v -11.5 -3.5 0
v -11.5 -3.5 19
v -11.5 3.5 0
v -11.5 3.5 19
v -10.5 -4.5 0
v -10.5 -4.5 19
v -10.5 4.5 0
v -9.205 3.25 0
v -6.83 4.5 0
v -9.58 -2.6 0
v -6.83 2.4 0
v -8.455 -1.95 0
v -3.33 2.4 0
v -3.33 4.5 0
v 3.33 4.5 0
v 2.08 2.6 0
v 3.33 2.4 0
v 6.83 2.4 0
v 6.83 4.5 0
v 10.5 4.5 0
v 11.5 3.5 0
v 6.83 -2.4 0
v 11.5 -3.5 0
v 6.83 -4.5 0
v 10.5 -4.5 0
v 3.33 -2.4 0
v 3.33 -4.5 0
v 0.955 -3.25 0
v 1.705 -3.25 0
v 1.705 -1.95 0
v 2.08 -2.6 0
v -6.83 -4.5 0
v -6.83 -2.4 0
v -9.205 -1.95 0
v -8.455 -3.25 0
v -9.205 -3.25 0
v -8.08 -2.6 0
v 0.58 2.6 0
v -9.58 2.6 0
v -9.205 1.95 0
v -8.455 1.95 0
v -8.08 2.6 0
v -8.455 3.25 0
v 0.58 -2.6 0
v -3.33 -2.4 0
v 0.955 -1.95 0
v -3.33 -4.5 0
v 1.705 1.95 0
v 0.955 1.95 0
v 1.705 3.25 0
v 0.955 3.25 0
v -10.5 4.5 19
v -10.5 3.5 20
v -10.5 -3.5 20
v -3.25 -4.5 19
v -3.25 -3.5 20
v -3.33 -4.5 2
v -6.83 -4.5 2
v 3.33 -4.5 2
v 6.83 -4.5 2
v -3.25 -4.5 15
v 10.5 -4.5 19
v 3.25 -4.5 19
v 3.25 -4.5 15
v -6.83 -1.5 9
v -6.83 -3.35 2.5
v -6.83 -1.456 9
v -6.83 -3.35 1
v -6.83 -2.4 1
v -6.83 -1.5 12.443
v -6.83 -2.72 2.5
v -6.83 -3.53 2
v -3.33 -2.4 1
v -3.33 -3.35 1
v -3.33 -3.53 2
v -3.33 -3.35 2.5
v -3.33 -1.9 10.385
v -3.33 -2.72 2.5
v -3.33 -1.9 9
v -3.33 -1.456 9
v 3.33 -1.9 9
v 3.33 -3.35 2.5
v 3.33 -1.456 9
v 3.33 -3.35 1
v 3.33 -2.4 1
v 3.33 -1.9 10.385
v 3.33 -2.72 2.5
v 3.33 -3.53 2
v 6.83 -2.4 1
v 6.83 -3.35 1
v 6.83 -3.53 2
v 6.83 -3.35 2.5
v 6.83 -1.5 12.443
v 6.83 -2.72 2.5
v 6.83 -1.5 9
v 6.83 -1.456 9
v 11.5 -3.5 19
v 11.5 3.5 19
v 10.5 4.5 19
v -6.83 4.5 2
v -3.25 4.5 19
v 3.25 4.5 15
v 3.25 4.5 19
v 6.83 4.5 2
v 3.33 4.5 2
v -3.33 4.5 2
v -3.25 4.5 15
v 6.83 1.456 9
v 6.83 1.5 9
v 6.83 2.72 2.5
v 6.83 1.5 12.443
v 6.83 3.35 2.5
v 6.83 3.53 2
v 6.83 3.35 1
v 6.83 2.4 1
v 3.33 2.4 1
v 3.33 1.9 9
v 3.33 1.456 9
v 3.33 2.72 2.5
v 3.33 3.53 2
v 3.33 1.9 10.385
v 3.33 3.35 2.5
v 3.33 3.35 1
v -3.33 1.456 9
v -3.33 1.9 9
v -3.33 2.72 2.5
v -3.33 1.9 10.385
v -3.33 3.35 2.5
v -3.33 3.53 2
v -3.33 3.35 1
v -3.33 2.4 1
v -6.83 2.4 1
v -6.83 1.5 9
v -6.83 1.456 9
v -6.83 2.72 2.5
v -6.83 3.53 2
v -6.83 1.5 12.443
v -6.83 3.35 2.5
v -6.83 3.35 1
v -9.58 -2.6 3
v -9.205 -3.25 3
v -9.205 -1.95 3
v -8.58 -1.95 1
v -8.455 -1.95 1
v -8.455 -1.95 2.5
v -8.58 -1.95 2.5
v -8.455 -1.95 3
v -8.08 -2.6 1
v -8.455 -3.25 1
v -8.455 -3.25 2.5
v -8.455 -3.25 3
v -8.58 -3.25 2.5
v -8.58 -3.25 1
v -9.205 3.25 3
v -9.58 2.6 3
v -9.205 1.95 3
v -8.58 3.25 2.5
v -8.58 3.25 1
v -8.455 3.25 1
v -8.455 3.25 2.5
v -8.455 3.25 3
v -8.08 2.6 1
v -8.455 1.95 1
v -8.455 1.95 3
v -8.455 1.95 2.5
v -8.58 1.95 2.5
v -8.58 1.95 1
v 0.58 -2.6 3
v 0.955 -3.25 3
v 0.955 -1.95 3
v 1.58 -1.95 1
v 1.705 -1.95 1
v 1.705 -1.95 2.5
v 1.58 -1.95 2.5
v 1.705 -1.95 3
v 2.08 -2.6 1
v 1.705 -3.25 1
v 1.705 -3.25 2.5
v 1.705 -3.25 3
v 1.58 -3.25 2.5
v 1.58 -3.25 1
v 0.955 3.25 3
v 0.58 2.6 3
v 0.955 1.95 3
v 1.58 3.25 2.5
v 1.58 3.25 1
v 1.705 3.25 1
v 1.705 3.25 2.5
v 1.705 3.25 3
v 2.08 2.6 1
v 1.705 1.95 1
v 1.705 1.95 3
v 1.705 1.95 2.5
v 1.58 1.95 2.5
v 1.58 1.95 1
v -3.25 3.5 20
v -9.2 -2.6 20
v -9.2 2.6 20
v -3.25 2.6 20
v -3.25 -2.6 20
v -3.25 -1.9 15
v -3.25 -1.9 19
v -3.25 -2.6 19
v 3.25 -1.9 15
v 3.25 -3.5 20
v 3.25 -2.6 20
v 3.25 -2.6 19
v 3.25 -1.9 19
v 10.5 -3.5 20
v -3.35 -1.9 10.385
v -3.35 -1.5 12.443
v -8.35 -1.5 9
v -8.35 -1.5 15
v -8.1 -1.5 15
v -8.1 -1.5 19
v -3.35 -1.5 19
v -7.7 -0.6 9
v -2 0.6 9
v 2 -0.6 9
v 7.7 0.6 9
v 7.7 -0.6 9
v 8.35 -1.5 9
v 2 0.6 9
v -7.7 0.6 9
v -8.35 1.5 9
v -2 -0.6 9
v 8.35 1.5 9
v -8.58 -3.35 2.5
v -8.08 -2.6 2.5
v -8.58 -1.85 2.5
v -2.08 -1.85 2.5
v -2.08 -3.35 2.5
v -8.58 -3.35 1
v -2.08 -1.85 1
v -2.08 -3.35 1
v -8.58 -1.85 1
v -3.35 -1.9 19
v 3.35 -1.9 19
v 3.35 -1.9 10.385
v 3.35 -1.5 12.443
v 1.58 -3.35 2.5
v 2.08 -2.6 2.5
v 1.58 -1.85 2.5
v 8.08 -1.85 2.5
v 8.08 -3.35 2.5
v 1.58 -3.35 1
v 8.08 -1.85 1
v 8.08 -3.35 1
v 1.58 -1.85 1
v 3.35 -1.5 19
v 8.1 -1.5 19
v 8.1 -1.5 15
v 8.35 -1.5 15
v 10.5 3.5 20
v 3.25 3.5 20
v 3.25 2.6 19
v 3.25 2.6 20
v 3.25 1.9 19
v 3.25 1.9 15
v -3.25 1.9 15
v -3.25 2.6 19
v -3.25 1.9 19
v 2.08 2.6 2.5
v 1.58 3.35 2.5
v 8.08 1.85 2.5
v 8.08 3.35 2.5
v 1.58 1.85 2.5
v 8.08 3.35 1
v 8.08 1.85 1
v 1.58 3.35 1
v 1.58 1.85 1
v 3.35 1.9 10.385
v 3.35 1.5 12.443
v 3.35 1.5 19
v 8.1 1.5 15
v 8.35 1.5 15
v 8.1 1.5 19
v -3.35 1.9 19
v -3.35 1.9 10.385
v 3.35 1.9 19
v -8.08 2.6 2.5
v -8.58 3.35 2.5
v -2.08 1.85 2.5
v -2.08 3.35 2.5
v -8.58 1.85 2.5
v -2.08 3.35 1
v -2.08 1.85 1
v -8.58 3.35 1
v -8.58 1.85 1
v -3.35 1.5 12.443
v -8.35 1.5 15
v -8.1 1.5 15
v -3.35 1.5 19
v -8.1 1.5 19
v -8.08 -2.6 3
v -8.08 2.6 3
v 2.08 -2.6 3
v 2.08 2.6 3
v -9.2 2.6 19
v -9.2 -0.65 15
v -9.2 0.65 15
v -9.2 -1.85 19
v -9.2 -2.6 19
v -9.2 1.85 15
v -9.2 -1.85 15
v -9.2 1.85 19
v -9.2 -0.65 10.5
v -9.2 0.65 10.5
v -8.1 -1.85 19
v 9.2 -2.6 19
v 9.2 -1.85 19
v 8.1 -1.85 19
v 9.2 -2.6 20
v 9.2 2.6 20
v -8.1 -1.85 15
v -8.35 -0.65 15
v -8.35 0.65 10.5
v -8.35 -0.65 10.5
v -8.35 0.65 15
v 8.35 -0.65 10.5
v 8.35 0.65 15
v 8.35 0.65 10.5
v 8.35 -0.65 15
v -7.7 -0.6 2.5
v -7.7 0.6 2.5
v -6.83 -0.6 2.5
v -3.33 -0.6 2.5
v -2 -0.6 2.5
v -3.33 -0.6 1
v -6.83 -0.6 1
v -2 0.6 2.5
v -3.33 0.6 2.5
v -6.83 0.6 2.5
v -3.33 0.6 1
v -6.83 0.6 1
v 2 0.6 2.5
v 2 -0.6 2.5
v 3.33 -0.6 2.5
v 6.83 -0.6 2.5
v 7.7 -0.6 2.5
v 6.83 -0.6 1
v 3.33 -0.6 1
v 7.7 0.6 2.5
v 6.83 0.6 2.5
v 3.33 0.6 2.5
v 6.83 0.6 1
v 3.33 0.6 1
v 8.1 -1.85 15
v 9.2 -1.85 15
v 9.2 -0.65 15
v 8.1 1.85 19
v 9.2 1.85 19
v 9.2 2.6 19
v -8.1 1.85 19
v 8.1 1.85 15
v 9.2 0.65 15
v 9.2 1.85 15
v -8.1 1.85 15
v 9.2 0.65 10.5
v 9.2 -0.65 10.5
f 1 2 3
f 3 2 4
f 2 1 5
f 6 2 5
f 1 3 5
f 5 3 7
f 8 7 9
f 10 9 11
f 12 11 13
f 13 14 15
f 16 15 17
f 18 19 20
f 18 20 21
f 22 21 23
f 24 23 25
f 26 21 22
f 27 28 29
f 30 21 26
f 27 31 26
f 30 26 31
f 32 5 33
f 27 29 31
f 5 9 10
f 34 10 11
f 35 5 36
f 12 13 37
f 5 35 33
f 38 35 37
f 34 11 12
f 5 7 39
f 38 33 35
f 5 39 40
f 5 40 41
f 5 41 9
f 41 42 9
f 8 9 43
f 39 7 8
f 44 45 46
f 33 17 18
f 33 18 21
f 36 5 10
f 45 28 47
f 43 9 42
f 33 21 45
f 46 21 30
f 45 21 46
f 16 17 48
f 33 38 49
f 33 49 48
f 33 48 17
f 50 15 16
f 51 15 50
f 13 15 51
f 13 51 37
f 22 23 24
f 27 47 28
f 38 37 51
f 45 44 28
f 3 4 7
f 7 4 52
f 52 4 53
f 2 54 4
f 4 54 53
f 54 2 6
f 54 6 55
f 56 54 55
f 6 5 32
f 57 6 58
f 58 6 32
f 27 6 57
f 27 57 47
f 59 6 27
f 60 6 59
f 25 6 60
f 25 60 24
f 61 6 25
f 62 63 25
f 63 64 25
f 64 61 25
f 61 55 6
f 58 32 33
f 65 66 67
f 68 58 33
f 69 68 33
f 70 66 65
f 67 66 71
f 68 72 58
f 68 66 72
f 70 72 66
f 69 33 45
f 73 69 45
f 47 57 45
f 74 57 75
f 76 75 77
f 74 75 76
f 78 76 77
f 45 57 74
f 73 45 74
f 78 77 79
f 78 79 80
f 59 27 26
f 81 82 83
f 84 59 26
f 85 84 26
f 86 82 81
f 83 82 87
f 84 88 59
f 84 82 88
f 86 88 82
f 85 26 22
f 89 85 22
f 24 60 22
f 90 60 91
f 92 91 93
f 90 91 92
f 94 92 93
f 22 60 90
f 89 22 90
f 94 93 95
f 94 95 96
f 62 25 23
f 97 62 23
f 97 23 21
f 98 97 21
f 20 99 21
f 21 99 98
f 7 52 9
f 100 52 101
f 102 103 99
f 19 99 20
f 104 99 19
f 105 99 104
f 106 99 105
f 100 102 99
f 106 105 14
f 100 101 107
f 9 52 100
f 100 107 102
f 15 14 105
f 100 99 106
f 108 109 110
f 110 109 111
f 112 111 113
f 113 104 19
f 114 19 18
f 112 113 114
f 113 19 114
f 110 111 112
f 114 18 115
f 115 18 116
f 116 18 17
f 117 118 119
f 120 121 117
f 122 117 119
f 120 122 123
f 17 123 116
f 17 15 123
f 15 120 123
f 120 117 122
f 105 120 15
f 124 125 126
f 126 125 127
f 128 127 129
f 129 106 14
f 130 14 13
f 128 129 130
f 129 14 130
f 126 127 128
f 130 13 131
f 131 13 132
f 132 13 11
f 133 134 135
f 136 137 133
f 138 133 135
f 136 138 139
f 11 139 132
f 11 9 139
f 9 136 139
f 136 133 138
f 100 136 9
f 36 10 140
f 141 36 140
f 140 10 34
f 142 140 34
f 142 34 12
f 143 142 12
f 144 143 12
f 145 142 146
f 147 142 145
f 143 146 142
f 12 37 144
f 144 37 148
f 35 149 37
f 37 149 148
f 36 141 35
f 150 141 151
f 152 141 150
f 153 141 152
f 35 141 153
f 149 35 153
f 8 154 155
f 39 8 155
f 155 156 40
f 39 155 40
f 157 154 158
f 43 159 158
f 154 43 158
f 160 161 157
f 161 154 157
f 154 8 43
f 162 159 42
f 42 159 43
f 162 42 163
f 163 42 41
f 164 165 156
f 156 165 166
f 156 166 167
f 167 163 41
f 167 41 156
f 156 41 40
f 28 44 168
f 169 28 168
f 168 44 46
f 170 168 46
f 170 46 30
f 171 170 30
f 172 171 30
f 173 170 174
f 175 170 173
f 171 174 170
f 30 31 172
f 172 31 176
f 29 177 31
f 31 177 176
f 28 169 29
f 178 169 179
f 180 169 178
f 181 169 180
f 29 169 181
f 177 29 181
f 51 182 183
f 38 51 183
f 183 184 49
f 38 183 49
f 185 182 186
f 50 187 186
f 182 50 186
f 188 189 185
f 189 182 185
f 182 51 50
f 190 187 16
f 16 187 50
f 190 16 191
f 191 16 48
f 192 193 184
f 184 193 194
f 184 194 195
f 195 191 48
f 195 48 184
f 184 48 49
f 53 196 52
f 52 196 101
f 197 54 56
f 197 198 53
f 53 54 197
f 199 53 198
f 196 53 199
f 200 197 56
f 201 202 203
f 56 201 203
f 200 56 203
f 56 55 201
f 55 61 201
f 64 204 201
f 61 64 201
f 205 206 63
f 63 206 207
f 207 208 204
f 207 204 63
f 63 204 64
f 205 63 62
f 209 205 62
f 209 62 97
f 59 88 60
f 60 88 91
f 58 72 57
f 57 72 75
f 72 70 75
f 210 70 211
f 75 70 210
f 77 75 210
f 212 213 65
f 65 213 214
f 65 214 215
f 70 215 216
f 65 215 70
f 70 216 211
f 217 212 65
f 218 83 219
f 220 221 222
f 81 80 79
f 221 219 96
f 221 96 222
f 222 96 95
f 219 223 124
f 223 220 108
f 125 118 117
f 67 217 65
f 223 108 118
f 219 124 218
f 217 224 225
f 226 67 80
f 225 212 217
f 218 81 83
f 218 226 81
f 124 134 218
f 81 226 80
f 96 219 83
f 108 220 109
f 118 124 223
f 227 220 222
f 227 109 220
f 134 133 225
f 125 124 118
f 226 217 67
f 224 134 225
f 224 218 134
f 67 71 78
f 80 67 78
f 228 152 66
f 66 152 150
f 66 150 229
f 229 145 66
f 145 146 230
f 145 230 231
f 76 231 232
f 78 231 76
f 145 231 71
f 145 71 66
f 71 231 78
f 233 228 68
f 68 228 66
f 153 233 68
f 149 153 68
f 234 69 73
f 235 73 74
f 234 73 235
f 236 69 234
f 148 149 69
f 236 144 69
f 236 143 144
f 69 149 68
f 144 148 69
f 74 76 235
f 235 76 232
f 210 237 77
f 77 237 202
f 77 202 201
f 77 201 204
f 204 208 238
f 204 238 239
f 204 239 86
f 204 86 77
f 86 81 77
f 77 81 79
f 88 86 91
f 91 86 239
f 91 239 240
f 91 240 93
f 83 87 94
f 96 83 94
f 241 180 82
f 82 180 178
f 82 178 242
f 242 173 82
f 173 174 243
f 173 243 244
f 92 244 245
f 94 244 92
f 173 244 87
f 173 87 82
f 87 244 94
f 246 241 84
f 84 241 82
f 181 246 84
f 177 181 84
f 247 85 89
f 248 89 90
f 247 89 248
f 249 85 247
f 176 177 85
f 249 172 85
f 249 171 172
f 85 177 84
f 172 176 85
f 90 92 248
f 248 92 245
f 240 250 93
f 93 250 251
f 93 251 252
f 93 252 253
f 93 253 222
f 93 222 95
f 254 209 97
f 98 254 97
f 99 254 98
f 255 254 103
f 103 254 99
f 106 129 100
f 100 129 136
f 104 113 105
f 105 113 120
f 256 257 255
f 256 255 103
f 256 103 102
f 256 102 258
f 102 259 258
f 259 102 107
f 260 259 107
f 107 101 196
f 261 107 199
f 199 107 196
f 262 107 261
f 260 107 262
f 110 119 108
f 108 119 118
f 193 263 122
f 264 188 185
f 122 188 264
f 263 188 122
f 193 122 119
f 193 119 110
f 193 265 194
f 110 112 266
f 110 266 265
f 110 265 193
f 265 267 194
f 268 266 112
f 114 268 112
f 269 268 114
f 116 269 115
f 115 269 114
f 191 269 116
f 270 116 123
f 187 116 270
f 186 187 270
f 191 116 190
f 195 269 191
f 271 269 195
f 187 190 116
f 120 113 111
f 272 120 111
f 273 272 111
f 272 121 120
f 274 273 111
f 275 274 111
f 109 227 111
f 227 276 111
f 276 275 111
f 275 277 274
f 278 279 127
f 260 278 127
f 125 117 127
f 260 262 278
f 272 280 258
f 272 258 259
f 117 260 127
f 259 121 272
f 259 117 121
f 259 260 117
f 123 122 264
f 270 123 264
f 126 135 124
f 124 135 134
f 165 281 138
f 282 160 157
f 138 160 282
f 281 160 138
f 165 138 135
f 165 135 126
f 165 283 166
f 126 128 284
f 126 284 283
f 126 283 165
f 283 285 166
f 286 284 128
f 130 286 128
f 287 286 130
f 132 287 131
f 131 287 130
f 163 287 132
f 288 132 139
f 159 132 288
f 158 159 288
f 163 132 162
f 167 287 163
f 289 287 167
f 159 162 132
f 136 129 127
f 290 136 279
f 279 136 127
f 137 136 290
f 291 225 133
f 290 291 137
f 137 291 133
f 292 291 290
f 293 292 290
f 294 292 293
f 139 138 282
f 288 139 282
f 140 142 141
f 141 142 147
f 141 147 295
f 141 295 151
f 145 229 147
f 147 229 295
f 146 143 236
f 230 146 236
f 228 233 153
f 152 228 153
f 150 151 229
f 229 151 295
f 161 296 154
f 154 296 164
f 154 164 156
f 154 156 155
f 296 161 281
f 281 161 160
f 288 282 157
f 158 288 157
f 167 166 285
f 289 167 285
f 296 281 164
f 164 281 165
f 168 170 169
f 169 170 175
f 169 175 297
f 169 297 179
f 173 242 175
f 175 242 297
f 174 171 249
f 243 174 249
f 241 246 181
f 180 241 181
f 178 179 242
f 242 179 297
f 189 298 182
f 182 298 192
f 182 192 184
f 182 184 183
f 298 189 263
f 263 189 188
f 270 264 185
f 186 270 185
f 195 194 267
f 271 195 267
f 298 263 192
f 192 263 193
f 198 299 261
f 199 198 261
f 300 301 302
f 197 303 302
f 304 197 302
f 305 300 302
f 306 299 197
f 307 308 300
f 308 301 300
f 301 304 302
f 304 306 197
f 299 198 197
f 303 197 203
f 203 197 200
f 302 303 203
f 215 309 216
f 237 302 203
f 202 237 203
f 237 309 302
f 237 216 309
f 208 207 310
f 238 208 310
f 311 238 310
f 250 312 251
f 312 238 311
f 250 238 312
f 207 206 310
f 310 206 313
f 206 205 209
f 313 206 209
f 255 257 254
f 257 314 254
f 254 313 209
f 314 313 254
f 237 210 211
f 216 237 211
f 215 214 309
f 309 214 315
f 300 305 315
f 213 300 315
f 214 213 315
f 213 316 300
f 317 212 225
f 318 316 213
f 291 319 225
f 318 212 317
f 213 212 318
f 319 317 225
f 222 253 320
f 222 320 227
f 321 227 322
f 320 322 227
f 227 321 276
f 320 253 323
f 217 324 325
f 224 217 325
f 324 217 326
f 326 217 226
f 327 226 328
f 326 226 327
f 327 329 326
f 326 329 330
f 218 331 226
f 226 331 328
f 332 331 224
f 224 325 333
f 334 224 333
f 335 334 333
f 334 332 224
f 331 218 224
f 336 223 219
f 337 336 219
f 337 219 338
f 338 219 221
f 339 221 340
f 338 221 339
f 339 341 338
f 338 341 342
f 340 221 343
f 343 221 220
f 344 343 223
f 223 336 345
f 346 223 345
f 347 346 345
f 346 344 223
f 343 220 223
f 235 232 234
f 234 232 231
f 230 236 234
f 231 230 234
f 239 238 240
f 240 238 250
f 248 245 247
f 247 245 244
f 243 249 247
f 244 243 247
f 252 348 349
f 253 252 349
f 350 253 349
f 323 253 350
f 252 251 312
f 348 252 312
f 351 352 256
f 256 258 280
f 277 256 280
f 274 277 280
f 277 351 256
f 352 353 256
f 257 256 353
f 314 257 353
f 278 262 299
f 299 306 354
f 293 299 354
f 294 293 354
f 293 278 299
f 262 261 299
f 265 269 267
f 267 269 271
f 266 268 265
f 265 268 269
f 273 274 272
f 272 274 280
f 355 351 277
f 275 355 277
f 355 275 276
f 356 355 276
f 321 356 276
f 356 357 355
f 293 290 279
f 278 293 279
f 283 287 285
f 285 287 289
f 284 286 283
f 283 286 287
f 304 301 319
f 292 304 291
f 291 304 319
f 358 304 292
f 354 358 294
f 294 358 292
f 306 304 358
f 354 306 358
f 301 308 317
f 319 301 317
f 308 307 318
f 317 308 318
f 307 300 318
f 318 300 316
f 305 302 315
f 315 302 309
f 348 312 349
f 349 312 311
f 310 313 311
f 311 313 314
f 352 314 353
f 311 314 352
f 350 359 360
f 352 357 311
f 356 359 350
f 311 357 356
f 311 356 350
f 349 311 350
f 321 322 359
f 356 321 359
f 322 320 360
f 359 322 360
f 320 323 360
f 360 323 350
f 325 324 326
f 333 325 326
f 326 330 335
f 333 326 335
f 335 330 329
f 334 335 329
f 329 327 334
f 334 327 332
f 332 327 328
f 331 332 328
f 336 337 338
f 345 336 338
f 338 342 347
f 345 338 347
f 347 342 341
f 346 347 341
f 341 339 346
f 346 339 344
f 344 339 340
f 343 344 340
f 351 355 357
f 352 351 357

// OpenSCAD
//////////////////////////////////////////////////////////////////////////////////////
///
///  FUSEHOLDER: Fuse holder for standard automotive fuses
///
///  This little project is a fuse holder for placing a standard automotive
///  5A/10A/20A fuse onto a PCB.
///
///  The contacts to the fuse spades are made by 3mm large solder tabs.  These
///  are bent around the fuse tabs in "M" shape, and the the ends are pushed
///  through the diagonal channel that lead to the solder cavities underneath
///  the fuse holer.  Then, the automotive fuse is used to push the solder tabs
///  into place. Two short pieces of 20ga (~0.8mm diameter) solid copper wire
///  are inserted through the vertical wire holes and horizontal channels to
///  overlap with the solder tabs in the solder cavities. Soldering has to be done
///  quickly in order not to melt the ABS plastic.
///
///  The distance between the wires is 0.4in / 10mm, and the placement of the wires
///  is done somewhat asymmetric, in order to fit the space on the PCB when
///  replacing the 11A auto-resetting PTC fuse on a RAMPS 1.4 board.
///
//////////////////////////////////////////////////////////////////////////////////////
///
///  2014-10-17 Heinz Spiess, Switzerland
///
///  released under Creative Commons - Attribution - Share Alike licence
//////////////////////////////////////////////////////////////////////////////////////


// a cube which is centered only on X and Y, not on Z
module cubecxy(size){
   translate([0,0,size[2]/2])cube(size,true);
}
   

module chamfered_cube(size,d=1){
   hull(){
     translate([d,d,0])cube(size-2*[d,d,0]);
     translate([0,d,0])cube(size-2*[0,d,d/2]);
     translate([d,0,0])cube(size-2*[d,0,d/2]);
   }
}


// model of a standard car fuse - used to carve out e avity 
// (the argument eps gives an additional size increase for smooth insertion) 
module carfuse(eps=[0,0,0]){
    cubecxy([18.2,5,2]+eps);
    cubecxy([18.2,1.1,10.5]+eps);
    difference(){
    cubecxy([18.2,3.5,6]+eps);
    cubecxy([16,3.6,6.1]+eps);
    }
    cubecxy([16.5,2.8,12]+eps);
    cubecxy([6.5,3.6,12]+eps);
    difference(){
      cubecxy([15.2,1.0,18.5]+eps);
      cubecxy([3.8,1.2,18.6]+eps);
    }
}


// constructs the fuse holder
module fuseholder(
  sp=4*2.54,          // wire hole spacing on PCB
  off=2,              // offset of wire holes
  size=[23,9,20],     // outer size of fuse holder
  tab=[3.5,.7],       // width and thickness of solder tabs
  wd=1.5              // diameter of wire holes 
  ){

   difference(){
      // main body
      translate([-size[0]/2,-size[1]/2,0])chamfered_cube(size);
      // grip cavity for removing fuse
      translate([0,0,size[2]-5])cubecxy([6.5,size[1]+1,6]);
      // fuse cavity 
      translate([0,0,size[2]+1])scale([1,1,-1])carfuse(eps=[0.2,0.2,0]);
      // solder tab cavities
      for(sx=[-1,1])for(sy=[-1,1])scale([1,sy,1])translate([sx*sp/2-tab[0]/2,.4,-1]){
         // diagonal channels for contact blade
         translate([0,3,0])rotate([11,0,0])cube([tab[0],tab[1],size[2]]);
	 // cavities for soldering blade to wire
         translate([0,2,0])cube([tab[0],3,3]);
	 // space for tab blades around fuse spades
         translate([0,-0.5,2])cube([tab[0],tab[1],size[2]]);
	 // horizontal wire channel
         translate([-off+tab[0],2.2,2])cubecxy([off+tab[0]+1,wd,wd]);
	 // vertical wire hole
         translate([-off,2.2,0])cylinder(r=wd/2,h=4,$fn=6);
      }
   }
}

fuseholder();
